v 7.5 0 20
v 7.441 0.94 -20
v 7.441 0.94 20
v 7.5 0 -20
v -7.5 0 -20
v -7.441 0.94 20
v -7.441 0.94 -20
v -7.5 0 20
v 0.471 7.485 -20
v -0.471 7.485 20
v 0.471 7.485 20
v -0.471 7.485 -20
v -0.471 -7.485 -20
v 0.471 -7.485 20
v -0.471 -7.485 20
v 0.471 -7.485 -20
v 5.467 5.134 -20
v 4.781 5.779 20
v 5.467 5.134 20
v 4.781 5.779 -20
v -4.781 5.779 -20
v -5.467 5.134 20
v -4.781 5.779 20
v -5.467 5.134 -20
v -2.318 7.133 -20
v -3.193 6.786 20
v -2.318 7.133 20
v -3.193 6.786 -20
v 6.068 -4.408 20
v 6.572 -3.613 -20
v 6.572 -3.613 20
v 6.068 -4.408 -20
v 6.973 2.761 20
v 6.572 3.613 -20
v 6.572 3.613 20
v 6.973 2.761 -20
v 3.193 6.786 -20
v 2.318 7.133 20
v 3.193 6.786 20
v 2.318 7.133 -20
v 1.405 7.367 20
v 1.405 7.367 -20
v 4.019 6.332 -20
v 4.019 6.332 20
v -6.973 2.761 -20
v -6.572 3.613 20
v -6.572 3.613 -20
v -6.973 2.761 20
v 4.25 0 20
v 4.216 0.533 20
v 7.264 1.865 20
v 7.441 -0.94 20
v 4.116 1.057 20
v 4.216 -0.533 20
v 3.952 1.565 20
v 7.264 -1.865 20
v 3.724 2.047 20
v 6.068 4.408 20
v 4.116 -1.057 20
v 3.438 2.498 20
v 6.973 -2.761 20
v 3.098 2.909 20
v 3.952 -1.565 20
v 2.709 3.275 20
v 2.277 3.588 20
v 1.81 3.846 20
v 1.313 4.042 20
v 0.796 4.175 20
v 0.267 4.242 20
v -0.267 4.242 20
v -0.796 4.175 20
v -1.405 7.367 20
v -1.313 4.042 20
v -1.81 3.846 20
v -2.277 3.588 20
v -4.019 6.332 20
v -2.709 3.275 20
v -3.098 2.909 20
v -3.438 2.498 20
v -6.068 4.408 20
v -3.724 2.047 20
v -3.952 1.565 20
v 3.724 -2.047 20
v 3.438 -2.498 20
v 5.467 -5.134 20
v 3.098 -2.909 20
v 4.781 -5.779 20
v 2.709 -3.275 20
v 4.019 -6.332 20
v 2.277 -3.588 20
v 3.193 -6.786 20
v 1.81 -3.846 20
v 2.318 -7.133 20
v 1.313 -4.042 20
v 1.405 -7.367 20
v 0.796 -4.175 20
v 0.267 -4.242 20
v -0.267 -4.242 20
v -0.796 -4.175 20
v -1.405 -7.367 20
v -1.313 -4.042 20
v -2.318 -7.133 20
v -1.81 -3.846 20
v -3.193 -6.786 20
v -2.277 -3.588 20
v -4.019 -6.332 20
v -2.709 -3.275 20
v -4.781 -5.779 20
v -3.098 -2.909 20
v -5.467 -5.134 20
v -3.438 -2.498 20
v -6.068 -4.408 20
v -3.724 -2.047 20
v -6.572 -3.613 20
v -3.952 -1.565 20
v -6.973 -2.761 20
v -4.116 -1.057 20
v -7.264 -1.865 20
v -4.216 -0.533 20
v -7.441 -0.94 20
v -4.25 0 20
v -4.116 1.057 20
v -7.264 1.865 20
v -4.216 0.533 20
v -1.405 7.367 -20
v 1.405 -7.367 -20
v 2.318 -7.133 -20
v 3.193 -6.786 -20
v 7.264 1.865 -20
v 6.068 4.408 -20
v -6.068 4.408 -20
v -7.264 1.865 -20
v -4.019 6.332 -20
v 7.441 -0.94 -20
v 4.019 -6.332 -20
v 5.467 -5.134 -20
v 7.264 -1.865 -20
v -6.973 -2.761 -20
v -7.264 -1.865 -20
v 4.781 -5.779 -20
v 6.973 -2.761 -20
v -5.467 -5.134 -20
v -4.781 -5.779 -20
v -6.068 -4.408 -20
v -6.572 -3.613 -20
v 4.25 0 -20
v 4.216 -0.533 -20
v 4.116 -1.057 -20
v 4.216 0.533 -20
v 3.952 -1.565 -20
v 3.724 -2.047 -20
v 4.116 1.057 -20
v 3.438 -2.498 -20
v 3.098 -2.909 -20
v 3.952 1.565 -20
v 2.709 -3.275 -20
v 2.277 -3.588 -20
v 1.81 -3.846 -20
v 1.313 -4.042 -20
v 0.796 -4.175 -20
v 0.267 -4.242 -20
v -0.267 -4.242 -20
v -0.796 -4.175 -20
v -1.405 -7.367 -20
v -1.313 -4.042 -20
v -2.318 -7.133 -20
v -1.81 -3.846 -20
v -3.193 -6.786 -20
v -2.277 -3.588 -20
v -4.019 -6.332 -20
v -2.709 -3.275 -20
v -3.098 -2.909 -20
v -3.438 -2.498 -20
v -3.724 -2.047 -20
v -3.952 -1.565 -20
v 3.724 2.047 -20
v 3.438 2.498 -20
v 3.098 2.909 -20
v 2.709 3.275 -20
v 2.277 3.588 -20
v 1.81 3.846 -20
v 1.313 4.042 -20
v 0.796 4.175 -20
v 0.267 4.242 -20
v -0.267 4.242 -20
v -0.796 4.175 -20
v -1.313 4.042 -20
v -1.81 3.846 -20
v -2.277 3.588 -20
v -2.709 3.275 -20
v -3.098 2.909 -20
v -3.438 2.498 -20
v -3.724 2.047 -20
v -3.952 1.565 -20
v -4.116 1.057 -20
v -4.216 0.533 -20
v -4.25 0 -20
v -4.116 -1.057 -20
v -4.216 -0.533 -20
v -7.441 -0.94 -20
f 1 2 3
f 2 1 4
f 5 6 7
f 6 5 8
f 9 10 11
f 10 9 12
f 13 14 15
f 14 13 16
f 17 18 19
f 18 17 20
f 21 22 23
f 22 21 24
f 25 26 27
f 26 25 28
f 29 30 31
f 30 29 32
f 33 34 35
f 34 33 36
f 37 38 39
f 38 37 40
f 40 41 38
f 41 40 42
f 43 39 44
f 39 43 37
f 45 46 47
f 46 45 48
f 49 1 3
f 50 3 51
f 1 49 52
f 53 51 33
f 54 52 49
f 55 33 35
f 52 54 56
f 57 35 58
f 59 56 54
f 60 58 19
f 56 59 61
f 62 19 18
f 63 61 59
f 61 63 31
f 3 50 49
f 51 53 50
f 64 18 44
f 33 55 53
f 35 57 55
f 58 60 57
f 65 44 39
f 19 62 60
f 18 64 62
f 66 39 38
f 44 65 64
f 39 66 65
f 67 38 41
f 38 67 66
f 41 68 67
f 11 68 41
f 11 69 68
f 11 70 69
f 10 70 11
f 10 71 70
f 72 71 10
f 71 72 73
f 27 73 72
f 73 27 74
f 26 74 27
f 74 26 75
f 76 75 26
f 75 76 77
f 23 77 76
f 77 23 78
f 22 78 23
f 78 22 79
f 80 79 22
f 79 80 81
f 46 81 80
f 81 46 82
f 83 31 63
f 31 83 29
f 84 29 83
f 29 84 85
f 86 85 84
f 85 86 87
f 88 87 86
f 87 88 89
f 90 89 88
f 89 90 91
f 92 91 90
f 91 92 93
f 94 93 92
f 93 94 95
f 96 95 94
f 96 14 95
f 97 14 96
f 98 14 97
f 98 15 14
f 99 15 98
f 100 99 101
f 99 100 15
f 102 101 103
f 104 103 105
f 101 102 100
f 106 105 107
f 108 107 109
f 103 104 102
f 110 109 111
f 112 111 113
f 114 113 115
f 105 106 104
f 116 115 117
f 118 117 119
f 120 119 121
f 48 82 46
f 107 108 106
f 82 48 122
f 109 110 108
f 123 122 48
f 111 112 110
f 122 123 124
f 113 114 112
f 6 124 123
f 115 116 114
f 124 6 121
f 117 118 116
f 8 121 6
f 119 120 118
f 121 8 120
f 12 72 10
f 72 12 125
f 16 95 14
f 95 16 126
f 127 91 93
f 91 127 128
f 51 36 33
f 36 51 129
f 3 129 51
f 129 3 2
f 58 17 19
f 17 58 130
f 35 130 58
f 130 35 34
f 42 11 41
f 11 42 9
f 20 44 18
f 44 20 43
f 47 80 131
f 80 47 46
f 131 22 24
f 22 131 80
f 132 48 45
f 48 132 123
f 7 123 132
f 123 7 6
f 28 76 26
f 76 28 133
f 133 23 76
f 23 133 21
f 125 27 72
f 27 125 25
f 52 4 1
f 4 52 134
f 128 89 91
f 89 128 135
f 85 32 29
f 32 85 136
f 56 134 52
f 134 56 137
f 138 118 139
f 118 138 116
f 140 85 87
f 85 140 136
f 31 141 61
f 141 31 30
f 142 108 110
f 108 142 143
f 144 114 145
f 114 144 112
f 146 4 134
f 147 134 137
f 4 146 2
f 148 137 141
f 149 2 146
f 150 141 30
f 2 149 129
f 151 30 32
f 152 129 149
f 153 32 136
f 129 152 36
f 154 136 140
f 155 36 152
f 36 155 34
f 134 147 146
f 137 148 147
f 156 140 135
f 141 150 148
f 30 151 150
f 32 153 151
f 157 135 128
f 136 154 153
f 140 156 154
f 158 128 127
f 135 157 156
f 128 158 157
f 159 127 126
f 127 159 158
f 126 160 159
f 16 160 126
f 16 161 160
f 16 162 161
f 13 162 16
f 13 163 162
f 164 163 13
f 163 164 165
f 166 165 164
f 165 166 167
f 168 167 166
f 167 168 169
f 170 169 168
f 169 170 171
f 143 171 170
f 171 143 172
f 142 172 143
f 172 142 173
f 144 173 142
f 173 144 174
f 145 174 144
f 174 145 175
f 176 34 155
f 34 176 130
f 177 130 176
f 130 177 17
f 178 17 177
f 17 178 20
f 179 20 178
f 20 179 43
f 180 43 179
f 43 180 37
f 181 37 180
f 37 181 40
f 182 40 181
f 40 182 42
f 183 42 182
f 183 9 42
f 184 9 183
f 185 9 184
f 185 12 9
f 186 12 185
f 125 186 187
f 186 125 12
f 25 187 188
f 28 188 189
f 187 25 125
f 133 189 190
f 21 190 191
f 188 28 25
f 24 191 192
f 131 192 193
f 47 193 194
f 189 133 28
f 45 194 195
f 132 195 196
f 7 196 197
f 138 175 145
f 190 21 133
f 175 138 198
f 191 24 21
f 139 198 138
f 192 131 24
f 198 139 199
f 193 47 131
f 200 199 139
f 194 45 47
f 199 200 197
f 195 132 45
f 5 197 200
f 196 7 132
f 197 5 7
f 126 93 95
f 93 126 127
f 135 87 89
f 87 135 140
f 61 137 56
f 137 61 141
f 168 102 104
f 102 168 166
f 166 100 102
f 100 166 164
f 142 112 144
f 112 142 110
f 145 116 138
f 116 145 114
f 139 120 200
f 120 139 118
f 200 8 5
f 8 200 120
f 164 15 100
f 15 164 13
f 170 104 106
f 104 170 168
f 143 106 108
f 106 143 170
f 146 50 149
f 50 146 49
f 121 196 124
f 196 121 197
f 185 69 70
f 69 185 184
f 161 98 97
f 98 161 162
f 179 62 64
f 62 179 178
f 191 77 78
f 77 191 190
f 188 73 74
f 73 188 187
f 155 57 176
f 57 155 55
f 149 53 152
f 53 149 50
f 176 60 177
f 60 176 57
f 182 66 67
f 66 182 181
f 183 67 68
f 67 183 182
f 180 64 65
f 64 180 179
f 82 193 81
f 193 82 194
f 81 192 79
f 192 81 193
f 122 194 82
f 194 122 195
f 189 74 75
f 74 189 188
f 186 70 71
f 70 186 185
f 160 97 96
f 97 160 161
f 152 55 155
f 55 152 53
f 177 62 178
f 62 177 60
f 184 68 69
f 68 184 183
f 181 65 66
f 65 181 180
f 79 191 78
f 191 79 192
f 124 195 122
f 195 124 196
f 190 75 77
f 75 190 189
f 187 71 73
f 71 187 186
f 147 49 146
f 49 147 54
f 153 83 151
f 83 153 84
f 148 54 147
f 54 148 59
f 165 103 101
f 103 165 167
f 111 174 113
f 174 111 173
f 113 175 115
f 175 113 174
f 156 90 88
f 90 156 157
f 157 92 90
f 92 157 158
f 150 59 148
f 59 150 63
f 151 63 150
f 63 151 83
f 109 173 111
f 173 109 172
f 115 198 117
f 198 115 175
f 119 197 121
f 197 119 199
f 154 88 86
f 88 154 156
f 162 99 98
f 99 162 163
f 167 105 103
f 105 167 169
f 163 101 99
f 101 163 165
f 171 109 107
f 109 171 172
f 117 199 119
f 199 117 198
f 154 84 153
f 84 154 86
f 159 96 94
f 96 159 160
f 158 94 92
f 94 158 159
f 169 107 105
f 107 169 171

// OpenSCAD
$fn = 50;


difference() {
	union() {
		translate(v = [0, 0, -20.0000000000]) {
			cylinder(h = 40, r = 7.5000000000);
		}
	}
	union() {
		translate(v = [0, 0, -100.0000000000]) {
			cylinder(h = 200, r = 4.2500000000);
		}
	}
}
